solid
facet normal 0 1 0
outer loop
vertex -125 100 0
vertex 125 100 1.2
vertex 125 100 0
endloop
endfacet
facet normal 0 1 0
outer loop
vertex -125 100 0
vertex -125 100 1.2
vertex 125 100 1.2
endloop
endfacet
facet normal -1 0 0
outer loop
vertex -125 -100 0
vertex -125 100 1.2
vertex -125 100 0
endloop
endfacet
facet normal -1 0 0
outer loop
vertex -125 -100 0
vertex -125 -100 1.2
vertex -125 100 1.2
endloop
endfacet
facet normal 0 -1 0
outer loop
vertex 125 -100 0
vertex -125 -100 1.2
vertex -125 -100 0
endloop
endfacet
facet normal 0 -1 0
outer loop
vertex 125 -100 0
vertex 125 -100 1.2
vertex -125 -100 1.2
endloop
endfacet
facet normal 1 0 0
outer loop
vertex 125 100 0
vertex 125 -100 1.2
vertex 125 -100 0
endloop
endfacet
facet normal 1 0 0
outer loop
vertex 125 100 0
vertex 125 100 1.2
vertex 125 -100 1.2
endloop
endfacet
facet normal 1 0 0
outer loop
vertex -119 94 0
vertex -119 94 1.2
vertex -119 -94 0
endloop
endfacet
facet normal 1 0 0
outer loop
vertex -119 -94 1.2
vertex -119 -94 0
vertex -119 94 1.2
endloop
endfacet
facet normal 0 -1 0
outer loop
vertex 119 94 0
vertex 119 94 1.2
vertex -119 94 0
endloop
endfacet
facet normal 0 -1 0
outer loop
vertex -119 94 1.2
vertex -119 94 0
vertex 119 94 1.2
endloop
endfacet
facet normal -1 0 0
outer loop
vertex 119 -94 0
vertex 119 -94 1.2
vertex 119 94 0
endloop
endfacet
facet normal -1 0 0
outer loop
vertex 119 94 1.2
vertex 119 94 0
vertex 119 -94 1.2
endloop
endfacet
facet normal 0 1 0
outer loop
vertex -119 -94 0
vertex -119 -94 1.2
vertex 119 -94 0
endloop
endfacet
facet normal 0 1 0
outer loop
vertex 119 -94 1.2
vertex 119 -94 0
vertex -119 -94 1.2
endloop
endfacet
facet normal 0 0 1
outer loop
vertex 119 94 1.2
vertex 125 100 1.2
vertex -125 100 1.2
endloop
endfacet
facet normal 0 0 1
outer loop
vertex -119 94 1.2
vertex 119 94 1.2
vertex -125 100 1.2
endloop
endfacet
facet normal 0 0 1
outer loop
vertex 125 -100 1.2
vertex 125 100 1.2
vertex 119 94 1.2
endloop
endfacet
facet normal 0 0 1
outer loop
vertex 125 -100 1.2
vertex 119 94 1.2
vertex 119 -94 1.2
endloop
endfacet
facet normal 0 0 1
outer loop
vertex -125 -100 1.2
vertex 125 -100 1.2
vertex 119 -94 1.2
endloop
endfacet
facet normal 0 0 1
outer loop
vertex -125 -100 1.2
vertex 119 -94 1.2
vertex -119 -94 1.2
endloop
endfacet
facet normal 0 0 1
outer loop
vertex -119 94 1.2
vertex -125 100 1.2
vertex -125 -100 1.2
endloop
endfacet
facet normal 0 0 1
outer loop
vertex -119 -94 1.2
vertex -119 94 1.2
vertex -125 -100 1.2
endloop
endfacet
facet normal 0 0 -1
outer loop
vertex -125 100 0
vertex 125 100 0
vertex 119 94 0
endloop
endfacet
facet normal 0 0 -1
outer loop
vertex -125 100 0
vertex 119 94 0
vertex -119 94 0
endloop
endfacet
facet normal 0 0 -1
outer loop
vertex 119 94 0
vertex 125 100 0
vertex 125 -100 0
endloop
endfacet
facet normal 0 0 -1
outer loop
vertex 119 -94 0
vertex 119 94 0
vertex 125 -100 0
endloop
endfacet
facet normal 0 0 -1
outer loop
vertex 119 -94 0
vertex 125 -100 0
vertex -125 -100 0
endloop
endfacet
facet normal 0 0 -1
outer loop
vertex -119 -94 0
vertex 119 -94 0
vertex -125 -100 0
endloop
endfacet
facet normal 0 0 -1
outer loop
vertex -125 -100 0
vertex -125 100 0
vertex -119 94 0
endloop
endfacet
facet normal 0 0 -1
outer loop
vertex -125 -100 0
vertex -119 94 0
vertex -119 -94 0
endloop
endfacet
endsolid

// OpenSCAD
// Thin one-piece field marker for the large SO-101 tic-tac-toe setup.
// Two identical black prints mark the X and O regions.

OUTER_W = 250;
OUTER_H = 200;
BORDER = 6;
THICKNESS = 1.2;

$fn = 48;

module rectangular_frame() {
    linear_extrude(height = THICKNESS)
        difference() {
            square([OUTER_W, OUTER_H], center = true);
            square([
                OUTER_W - 2 * BORDER,
                OUTER_H - 2 * BORDER
            ], center = true);
        }
}

color("#111111") rectangular_frame();
